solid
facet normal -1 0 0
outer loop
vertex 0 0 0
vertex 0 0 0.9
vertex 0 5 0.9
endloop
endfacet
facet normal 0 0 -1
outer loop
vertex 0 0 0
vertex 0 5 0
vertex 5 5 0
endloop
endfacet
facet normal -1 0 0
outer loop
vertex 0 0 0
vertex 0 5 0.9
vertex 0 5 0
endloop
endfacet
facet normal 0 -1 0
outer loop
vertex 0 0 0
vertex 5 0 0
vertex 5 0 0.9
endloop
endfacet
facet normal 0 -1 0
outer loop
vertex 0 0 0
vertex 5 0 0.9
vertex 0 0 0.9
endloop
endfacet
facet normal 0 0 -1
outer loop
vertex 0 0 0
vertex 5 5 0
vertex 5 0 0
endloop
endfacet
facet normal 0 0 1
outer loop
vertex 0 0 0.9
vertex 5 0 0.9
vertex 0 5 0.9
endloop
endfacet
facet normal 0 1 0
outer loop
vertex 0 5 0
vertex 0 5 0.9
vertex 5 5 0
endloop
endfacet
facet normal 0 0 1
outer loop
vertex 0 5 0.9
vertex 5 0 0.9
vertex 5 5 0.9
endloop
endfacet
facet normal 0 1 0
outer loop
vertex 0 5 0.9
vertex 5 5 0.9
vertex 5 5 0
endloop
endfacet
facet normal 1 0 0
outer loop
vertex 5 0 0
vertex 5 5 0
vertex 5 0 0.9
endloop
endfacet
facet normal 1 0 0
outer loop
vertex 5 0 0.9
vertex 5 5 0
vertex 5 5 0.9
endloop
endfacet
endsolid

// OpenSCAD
/* Warning, this is a very basic generator with a lot of approximation 
input data : [VQFN, QLA, 5x5x0.9mm, 32, , A, C04-01285A]
generated by com.zoubworld.electronics.cad.model3d.Basic
Date : Sun Feb 15 10:50:49 CET 2026
*/

//body
color("black")
translate([0,0,0])
cube([5.0,5.0,0.9], center=false);
